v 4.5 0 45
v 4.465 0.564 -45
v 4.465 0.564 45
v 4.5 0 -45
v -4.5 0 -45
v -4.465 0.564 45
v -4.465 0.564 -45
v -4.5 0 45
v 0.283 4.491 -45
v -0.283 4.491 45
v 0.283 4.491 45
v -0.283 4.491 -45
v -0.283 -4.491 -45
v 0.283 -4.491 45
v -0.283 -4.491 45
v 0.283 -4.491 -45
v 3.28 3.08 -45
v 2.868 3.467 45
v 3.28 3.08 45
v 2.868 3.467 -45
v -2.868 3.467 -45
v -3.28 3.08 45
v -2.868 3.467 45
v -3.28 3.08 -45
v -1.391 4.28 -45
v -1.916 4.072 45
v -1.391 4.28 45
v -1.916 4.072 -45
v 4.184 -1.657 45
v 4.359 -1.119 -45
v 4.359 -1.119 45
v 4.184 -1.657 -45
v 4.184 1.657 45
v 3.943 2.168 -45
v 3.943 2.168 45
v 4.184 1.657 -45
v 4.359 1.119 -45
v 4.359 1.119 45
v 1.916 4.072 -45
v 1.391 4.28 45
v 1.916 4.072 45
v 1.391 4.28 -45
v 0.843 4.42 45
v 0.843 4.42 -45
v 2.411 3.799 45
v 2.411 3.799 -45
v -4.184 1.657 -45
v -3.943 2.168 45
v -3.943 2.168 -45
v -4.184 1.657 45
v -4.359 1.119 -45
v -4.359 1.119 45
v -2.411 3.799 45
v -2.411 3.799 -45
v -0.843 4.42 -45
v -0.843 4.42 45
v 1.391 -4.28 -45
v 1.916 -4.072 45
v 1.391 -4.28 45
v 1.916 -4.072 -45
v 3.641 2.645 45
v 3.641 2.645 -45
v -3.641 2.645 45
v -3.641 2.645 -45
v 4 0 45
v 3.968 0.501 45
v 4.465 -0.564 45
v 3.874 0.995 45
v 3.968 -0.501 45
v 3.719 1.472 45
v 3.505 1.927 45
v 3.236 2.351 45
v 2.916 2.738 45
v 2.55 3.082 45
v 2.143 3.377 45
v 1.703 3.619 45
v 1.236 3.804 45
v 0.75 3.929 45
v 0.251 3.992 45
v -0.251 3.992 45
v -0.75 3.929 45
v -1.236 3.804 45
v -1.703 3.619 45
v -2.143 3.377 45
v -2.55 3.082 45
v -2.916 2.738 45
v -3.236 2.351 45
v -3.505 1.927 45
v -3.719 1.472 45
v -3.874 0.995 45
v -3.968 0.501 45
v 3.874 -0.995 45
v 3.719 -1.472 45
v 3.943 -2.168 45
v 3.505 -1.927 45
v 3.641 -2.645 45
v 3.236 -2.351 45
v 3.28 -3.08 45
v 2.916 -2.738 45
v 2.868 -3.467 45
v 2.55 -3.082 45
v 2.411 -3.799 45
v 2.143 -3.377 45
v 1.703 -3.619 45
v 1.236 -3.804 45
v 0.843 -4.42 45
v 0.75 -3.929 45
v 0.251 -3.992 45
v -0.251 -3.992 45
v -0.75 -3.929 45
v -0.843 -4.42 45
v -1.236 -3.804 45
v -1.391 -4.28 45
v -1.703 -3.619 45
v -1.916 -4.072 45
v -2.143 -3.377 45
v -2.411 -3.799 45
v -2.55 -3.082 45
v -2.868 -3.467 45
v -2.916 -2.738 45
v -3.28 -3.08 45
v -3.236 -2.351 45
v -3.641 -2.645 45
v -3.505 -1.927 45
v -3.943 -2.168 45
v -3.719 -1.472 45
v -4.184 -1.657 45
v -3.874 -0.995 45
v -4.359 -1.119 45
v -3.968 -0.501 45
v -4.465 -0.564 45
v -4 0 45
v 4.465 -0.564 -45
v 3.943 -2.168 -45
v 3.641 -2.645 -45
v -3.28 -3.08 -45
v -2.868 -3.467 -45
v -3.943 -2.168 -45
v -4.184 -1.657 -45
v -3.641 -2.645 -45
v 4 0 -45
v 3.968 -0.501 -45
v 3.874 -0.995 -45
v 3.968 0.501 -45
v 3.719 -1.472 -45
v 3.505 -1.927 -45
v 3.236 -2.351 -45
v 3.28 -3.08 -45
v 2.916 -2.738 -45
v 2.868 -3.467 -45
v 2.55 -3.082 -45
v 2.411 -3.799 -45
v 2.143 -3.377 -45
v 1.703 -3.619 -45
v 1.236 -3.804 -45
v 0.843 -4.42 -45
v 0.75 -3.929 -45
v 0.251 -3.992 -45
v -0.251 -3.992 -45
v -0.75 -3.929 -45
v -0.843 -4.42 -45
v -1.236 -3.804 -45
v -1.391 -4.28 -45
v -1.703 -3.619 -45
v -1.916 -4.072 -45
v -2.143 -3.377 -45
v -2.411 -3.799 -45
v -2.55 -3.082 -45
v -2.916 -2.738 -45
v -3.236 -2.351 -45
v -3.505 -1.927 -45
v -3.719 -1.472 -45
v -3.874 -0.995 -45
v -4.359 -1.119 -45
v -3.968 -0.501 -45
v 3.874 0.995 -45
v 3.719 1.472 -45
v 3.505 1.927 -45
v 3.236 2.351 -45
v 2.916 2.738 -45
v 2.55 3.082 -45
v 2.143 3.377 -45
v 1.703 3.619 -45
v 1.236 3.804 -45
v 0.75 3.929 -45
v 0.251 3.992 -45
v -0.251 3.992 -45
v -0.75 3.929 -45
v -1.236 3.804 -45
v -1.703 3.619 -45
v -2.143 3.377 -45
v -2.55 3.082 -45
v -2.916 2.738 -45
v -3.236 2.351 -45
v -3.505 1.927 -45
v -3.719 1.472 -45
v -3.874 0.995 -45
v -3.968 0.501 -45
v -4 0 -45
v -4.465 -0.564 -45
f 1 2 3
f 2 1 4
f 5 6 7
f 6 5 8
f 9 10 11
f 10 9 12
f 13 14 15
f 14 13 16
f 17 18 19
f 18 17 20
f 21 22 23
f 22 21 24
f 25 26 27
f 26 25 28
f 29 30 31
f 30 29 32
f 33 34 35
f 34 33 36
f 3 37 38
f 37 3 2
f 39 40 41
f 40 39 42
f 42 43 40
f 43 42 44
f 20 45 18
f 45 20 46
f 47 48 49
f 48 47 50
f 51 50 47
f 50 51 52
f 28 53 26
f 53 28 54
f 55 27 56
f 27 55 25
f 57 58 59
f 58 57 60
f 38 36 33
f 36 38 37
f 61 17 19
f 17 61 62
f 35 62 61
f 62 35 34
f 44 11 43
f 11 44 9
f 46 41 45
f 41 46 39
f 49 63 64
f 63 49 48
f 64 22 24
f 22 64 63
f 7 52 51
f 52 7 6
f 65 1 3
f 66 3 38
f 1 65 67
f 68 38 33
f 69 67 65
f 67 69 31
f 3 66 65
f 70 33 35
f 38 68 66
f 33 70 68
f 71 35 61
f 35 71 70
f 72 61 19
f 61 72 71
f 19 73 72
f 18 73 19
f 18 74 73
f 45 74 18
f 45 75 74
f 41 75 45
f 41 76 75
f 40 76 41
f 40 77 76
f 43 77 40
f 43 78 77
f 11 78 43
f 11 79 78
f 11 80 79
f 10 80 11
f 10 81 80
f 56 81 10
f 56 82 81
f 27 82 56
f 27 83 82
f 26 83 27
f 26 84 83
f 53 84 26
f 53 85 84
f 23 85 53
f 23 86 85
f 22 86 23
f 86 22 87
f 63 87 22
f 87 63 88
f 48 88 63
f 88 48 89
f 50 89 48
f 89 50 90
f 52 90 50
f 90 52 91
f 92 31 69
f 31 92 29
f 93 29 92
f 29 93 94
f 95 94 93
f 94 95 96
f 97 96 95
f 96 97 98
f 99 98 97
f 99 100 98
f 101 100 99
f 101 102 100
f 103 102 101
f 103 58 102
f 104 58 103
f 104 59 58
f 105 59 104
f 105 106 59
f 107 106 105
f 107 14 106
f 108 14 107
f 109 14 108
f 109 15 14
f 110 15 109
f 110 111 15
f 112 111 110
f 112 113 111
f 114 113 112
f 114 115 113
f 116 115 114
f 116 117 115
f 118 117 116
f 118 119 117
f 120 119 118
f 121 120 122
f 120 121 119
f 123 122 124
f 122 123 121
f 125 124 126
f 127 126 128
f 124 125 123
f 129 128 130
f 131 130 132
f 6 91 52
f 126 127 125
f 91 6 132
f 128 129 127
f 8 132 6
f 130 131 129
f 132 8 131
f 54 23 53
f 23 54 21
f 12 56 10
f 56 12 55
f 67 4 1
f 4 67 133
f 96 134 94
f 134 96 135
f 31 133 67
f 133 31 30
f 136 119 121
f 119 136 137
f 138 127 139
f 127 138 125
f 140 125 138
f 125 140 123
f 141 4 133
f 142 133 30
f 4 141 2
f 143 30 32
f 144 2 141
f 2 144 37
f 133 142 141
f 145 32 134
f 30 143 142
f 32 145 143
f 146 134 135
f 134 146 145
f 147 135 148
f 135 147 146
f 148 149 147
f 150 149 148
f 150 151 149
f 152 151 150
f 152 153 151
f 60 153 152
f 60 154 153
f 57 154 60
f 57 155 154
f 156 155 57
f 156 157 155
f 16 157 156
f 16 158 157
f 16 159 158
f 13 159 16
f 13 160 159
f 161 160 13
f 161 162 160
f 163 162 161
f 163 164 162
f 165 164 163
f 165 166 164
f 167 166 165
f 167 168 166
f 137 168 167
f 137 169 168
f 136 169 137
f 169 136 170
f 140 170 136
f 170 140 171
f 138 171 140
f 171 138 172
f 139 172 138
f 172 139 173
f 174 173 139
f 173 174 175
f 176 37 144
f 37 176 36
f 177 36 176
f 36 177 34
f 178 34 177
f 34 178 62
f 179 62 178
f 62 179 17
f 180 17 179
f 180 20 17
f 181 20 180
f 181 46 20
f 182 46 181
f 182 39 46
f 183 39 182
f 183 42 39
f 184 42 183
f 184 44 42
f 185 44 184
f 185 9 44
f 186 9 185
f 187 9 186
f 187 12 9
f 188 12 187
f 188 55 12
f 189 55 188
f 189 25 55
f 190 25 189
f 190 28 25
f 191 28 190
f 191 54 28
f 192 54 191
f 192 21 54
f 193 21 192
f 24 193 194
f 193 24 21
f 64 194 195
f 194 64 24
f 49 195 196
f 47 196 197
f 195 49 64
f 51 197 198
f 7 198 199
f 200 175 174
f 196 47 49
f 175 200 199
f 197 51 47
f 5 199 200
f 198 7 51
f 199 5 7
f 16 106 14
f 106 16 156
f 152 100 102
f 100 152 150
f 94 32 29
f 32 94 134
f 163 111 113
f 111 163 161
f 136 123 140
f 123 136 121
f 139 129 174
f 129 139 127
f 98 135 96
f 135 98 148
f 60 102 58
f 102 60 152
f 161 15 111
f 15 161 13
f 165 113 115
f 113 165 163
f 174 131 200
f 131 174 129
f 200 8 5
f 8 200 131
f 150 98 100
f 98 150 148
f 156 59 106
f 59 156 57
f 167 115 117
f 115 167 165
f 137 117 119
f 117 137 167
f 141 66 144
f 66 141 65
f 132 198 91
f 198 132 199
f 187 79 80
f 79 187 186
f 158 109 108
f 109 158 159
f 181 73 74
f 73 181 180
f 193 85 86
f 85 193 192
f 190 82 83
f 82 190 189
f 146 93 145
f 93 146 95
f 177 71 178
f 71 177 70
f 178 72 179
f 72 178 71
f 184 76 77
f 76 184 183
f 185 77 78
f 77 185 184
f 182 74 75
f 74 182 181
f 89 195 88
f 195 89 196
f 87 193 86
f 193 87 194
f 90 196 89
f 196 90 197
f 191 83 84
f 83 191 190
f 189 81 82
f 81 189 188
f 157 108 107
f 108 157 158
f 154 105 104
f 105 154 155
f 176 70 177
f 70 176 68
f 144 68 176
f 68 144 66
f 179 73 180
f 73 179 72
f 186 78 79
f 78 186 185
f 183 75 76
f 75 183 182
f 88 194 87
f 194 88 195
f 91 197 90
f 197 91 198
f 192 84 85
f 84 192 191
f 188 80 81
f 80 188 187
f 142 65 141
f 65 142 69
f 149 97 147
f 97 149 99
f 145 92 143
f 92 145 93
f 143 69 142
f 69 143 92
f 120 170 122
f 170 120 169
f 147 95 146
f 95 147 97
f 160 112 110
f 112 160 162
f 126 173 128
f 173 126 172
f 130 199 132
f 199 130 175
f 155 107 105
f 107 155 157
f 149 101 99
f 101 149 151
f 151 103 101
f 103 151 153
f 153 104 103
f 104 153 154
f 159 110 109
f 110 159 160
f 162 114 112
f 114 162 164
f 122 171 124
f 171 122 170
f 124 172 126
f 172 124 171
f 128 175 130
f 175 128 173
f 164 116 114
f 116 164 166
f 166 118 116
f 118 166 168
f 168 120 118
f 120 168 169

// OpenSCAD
$fn = 50;


difference() {
	union() {
		translate(v = [0, 0, -45.0000000000]) {
			cylinder(h = 90, r = 4.5000000000);
		}
	}
	union() {
		translate(v = [0, 0, -100.0000000000]) {
			cylinder(h = 200, r = 4);
		}
	}
}
